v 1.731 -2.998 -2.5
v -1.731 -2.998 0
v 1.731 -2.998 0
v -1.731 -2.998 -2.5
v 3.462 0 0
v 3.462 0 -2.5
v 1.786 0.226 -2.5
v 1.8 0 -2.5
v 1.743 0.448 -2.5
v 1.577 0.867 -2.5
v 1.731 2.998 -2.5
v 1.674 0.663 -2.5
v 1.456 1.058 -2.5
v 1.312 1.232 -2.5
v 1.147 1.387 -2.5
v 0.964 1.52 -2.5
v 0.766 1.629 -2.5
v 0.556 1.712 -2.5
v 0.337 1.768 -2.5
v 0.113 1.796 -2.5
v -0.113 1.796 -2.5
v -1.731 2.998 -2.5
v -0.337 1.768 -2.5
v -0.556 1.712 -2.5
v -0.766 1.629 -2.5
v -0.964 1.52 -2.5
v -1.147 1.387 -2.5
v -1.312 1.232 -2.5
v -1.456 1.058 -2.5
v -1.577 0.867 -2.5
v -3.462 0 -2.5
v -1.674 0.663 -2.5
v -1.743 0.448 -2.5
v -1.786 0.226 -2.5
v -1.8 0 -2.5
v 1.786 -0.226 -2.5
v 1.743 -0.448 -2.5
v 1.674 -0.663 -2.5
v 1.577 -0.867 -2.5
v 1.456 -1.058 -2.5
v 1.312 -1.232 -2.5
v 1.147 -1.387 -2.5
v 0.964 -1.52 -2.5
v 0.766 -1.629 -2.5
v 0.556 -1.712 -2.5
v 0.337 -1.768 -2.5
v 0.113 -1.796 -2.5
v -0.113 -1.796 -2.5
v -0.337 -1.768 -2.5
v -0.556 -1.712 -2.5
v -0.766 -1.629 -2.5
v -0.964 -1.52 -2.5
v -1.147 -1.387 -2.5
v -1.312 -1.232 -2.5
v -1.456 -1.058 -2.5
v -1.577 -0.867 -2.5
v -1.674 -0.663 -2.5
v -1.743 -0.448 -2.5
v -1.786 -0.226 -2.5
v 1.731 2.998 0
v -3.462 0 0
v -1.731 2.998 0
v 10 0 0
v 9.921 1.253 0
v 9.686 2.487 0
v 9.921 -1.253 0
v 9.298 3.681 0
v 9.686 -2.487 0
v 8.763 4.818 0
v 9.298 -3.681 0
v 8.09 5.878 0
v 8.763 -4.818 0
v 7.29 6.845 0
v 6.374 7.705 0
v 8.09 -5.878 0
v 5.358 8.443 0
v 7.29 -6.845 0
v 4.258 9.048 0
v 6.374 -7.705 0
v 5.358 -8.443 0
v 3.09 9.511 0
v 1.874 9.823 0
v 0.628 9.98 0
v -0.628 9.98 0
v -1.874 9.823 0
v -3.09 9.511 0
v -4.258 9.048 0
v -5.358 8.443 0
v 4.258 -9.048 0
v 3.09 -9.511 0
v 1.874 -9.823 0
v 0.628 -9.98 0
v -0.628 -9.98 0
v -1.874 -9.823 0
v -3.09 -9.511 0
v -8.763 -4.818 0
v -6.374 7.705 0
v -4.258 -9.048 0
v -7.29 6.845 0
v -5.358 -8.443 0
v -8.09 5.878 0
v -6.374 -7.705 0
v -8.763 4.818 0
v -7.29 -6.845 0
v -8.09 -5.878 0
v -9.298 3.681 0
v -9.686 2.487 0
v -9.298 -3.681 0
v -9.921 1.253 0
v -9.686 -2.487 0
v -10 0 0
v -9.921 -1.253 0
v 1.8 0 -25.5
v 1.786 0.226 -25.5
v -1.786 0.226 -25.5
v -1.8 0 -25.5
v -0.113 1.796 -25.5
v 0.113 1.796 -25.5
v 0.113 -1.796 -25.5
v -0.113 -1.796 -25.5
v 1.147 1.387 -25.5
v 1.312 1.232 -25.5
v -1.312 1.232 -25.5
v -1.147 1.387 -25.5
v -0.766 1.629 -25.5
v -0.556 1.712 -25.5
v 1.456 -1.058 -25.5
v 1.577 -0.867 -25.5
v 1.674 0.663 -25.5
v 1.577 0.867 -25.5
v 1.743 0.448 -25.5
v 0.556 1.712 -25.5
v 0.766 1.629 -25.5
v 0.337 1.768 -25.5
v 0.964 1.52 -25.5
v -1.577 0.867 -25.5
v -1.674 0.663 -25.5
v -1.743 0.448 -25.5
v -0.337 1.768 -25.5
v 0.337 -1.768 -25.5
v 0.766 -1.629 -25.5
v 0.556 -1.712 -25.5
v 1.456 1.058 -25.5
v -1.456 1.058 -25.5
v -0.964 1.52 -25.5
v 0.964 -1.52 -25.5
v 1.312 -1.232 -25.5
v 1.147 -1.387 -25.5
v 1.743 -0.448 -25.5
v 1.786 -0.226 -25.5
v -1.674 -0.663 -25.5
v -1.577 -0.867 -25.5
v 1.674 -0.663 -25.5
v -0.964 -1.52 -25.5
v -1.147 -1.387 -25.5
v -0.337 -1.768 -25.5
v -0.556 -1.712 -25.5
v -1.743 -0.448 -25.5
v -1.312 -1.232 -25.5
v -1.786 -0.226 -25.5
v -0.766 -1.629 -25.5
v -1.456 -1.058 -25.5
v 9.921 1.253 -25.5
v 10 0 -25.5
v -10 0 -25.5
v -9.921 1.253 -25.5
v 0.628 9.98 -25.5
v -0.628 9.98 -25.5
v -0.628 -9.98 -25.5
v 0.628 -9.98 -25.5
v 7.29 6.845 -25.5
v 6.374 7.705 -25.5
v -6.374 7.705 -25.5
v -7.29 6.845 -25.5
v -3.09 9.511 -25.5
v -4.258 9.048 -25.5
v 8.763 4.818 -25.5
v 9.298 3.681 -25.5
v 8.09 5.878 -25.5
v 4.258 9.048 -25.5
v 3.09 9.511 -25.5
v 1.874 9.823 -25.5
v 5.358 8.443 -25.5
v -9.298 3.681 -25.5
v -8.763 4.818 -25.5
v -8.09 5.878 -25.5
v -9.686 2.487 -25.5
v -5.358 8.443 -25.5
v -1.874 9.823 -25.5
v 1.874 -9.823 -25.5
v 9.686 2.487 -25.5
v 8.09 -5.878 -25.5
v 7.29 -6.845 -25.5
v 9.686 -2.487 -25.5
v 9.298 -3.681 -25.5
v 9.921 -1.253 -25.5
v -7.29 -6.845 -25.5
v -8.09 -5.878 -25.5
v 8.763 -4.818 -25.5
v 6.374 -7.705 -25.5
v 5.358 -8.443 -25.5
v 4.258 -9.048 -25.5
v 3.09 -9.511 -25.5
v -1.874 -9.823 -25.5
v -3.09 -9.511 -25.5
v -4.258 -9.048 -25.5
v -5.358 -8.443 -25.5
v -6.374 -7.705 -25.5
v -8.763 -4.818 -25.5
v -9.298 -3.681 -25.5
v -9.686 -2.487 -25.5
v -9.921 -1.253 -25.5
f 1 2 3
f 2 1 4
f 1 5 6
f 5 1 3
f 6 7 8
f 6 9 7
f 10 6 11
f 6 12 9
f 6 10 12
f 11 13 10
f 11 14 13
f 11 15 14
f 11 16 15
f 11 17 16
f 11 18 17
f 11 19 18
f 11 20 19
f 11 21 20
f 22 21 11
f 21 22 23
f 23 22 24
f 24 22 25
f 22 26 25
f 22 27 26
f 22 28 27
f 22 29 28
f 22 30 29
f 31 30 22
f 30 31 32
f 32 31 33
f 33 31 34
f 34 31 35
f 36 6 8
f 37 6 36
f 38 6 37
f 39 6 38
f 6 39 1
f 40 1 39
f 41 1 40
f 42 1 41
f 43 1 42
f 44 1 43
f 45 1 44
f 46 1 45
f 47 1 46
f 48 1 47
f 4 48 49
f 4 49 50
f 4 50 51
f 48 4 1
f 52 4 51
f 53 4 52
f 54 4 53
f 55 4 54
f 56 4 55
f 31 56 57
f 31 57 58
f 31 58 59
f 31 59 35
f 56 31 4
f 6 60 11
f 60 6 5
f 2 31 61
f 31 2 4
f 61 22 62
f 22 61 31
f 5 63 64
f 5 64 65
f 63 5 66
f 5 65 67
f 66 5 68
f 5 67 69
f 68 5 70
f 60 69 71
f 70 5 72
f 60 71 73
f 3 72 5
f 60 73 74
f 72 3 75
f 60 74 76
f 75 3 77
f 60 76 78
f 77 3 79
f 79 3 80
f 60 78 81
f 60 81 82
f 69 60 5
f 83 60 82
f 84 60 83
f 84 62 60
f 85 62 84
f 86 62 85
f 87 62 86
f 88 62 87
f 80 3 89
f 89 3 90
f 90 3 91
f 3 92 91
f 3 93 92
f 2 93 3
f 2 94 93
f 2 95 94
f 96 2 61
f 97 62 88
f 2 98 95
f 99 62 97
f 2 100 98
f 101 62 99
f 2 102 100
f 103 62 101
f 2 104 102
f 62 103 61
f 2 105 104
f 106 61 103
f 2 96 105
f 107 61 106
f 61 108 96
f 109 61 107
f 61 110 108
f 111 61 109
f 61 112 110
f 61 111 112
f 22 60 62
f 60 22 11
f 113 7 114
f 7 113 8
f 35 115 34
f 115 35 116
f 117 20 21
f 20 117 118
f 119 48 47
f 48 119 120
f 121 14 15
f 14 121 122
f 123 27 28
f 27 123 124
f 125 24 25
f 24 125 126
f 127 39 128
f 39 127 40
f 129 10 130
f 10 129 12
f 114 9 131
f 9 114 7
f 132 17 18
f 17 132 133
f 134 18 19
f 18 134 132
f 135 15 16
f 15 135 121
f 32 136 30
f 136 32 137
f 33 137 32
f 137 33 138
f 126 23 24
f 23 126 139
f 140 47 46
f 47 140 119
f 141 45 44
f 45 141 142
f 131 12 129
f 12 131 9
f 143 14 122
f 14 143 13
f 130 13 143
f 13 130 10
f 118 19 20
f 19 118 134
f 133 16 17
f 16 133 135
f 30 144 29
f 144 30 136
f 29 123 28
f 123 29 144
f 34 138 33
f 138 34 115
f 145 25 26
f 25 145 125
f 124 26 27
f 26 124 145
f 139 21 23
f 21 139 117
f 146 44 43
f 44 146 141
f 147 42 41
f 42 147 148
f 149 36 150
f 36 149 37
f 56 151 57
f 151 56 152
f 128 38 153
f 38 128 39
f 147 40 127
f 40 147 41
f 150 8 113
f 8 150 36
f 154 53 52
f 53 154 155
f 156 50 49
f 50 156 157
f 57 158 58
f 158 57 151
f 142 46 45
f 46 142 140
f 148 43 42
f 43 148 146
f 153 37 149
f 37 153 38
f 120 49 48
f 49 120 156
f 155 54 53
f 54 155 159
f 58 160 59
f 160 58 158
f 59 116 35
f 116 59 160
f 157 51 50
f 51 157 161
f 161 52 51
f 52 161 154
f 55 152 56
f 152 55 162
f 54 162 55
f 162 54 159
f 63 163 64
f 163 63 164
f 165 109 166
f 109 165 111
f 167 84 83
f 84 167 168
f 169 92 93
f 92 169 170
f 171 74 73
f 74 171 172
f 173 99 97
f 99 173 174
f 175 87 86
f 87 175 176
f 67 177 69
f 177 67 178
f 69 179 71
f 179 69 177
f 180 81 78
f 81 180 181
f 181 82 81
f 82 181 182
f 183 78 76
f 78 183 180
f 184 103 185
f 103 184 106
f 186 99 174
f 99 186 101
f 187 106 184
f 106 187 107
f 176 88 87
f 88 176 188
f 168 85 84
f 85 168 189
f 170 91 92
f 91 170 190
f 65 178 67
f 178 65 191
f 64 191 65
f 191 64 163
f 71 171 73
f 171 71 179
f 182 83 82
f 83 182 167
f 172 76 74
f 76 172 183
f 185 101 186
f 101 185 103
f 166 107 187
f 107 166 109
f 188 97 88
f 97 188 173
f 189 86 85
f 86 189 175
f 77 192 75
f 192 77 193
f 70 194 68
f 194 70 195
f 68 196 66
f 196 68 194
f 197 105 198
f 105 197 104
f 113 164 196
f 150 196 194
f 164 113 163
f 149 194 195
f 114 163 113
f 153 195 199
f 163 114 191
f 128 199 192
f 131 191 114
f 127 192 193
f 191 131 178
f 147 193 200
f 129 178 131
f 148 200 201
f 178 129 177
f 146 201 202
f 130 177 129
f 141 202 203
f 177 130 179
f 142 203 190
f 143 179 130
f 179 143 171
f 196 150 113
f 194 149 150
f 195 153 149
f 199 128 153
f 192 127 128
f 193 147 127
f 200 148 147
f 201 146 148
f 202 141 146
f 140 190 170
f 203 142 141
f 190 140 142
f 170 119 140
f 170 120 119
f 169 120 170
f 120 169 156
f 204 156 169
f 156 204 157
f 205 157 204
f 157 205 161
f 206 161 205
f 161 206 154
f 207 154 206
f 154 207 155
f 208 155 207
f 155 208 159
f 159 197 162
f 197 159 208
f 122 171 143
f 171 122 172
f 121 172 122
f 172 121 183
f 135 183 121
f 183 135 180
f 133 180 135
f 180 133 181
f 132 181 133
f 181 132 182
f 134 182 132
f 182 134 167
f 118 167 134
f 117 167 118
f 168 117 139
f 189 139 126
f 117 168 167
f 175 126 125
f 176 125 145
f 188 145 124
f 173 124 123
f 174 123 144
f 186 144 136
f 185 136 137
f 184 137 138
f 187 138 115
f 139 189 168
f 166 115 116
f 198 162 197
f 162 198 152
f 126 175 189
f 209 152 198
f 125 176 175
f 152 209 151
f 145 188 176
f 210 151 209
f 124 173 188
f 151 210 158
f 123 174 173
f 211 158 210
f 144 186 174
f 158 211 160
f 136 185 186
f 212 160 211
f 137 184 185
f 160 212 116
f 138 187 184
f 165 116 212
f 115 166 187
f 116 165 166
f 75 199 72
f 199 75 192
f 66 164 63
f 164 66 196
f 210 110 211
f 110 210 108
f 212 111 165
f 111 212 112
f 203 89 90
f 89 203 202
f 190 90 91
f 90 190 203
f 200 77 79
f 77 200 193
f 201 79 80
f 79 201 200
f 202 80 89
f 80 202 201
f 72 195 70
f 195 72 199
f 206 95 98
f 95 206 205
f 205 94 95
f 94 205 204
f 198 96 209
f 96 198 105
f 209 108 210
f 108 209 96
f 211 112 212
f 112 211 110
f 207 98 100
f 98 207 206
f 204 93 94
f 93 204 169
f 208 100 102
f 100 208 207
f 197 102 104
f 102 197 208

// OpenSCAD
$fn = 50;

difference() {
	union() {
		translate(v = [0, 0, -25.5]) {
			cylinder(h = 25.5, r = 10.0);
		}
	}
	union() {
		translate(v = [0, 0, 0]) {
			rotate(a = [0, 0, 0]) {
				difference() {
					union() {
						translate(v = [0, 0, -2.5]) {
							linear_extrude(height = 2.5) {
								polygon(points = [[3.4619999999999997, 0.0], [1.7310000000000003, 2.9981799479017264], [-1.7309999999999992, 2.9981799479017264], [-3.4619999999999997, 4.2397272186481365e-16], [-1.7310000000000014, -2.998179947901726], [1.7309999999999977, -2.9981799479017277]]);
							}
						}
					}
					union();
				}
			}
		}
		#translate(v = [0, 0, -100.0]) {
			cylinder(h = 200, r = 1.8);
		}
	}
}
